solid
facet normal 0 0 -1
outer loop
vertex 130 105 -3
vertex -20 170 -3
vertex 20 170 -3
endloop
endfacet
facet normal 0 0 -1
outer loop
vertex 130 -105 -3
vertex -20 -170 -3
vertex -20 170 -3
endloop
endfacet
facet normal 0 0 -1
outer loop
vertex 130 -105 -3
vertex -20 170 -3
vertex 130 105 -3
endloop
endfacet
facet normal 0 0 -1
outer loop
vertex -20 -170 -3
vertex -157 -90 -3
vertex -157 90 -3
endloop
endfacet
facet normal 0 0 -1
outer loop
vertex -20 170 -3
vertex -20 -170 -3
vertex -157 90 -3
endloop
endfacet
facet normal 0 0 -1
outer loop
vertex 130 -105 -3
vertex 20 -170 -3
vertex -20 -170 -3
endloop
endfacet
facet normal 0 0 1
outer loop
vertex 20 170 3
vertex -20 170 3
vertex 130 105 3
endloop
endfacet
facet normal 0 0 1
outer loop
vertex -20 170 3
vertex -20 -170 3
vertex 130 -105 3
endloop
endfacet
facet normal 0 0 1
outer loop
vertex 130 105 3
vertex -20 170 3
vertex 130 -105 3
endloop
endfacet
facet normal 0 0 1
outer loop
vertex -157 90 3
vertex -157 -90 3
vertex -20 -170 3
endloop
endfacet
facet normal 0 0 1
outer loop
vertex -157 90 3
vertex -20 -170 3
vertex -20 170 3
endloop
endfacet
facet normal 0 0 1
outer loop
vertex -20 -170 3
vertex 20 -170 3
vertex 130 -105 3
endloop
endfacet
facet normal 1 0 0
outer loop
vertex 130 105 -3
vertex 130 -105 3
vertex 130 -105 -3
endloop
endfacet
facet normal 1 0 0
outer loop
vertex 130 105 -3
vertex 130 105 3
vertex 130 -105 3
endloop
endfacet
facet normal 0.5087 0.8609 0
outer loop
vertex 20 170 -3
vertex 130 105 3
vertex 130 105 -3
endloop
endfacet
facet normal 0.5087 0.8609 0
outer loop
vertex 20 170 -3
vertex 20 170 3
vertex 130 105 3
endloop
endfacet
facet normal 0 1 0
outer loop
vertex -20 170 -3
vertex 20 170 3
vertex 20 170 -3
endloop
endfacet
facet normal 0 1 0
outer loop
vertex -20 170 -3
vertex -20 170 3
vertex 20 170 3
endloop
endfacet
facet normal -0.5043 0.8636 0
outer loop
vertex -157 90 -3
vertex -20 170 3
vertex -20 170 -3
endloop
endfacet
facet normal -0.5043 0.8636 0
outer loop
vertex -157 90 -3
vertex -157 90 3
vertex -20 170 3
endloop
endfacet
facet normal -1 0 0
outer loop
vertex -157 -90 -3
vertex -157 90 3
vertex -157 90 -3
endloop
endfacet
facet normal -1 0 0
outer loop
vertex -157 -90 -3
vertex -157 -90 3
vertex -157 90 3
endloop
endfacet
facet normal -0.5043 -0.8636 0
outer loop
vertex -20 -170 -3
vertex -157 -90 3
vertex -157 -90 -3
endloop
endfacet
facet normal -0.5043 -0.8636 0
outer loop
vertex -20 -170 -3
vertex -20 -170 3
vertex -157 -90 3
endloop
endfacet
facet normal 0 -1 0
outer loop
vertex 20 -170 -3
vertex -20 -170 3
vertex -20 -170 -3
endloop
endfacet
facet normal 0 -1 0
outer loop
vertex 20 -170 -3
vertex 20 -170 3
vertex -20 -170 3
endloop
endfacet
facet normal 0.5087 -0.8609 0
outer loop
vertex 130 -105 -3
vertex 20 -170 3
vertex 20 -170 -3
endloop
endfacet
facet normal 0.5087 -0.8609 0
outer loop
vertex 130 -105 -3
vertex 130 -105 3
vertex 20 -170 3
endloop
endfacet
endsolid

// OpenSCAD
// valid for plates top and middle
translate([0, 0, -3])
  linear_extrude(height = 6)
    polygon([[130, 105], [130, -105], [20, -170], [-20, -170], [-157, -90], [-157, 90], [-20, 170], [20, 170]]);

/* original mesh to compare
translate([-100, 0, 0])
  rotate([90, 0, -90])
    scale(1000)
      import("../meshes/stacks/hexagons/plate_top.stl", convexity=3);
*/
